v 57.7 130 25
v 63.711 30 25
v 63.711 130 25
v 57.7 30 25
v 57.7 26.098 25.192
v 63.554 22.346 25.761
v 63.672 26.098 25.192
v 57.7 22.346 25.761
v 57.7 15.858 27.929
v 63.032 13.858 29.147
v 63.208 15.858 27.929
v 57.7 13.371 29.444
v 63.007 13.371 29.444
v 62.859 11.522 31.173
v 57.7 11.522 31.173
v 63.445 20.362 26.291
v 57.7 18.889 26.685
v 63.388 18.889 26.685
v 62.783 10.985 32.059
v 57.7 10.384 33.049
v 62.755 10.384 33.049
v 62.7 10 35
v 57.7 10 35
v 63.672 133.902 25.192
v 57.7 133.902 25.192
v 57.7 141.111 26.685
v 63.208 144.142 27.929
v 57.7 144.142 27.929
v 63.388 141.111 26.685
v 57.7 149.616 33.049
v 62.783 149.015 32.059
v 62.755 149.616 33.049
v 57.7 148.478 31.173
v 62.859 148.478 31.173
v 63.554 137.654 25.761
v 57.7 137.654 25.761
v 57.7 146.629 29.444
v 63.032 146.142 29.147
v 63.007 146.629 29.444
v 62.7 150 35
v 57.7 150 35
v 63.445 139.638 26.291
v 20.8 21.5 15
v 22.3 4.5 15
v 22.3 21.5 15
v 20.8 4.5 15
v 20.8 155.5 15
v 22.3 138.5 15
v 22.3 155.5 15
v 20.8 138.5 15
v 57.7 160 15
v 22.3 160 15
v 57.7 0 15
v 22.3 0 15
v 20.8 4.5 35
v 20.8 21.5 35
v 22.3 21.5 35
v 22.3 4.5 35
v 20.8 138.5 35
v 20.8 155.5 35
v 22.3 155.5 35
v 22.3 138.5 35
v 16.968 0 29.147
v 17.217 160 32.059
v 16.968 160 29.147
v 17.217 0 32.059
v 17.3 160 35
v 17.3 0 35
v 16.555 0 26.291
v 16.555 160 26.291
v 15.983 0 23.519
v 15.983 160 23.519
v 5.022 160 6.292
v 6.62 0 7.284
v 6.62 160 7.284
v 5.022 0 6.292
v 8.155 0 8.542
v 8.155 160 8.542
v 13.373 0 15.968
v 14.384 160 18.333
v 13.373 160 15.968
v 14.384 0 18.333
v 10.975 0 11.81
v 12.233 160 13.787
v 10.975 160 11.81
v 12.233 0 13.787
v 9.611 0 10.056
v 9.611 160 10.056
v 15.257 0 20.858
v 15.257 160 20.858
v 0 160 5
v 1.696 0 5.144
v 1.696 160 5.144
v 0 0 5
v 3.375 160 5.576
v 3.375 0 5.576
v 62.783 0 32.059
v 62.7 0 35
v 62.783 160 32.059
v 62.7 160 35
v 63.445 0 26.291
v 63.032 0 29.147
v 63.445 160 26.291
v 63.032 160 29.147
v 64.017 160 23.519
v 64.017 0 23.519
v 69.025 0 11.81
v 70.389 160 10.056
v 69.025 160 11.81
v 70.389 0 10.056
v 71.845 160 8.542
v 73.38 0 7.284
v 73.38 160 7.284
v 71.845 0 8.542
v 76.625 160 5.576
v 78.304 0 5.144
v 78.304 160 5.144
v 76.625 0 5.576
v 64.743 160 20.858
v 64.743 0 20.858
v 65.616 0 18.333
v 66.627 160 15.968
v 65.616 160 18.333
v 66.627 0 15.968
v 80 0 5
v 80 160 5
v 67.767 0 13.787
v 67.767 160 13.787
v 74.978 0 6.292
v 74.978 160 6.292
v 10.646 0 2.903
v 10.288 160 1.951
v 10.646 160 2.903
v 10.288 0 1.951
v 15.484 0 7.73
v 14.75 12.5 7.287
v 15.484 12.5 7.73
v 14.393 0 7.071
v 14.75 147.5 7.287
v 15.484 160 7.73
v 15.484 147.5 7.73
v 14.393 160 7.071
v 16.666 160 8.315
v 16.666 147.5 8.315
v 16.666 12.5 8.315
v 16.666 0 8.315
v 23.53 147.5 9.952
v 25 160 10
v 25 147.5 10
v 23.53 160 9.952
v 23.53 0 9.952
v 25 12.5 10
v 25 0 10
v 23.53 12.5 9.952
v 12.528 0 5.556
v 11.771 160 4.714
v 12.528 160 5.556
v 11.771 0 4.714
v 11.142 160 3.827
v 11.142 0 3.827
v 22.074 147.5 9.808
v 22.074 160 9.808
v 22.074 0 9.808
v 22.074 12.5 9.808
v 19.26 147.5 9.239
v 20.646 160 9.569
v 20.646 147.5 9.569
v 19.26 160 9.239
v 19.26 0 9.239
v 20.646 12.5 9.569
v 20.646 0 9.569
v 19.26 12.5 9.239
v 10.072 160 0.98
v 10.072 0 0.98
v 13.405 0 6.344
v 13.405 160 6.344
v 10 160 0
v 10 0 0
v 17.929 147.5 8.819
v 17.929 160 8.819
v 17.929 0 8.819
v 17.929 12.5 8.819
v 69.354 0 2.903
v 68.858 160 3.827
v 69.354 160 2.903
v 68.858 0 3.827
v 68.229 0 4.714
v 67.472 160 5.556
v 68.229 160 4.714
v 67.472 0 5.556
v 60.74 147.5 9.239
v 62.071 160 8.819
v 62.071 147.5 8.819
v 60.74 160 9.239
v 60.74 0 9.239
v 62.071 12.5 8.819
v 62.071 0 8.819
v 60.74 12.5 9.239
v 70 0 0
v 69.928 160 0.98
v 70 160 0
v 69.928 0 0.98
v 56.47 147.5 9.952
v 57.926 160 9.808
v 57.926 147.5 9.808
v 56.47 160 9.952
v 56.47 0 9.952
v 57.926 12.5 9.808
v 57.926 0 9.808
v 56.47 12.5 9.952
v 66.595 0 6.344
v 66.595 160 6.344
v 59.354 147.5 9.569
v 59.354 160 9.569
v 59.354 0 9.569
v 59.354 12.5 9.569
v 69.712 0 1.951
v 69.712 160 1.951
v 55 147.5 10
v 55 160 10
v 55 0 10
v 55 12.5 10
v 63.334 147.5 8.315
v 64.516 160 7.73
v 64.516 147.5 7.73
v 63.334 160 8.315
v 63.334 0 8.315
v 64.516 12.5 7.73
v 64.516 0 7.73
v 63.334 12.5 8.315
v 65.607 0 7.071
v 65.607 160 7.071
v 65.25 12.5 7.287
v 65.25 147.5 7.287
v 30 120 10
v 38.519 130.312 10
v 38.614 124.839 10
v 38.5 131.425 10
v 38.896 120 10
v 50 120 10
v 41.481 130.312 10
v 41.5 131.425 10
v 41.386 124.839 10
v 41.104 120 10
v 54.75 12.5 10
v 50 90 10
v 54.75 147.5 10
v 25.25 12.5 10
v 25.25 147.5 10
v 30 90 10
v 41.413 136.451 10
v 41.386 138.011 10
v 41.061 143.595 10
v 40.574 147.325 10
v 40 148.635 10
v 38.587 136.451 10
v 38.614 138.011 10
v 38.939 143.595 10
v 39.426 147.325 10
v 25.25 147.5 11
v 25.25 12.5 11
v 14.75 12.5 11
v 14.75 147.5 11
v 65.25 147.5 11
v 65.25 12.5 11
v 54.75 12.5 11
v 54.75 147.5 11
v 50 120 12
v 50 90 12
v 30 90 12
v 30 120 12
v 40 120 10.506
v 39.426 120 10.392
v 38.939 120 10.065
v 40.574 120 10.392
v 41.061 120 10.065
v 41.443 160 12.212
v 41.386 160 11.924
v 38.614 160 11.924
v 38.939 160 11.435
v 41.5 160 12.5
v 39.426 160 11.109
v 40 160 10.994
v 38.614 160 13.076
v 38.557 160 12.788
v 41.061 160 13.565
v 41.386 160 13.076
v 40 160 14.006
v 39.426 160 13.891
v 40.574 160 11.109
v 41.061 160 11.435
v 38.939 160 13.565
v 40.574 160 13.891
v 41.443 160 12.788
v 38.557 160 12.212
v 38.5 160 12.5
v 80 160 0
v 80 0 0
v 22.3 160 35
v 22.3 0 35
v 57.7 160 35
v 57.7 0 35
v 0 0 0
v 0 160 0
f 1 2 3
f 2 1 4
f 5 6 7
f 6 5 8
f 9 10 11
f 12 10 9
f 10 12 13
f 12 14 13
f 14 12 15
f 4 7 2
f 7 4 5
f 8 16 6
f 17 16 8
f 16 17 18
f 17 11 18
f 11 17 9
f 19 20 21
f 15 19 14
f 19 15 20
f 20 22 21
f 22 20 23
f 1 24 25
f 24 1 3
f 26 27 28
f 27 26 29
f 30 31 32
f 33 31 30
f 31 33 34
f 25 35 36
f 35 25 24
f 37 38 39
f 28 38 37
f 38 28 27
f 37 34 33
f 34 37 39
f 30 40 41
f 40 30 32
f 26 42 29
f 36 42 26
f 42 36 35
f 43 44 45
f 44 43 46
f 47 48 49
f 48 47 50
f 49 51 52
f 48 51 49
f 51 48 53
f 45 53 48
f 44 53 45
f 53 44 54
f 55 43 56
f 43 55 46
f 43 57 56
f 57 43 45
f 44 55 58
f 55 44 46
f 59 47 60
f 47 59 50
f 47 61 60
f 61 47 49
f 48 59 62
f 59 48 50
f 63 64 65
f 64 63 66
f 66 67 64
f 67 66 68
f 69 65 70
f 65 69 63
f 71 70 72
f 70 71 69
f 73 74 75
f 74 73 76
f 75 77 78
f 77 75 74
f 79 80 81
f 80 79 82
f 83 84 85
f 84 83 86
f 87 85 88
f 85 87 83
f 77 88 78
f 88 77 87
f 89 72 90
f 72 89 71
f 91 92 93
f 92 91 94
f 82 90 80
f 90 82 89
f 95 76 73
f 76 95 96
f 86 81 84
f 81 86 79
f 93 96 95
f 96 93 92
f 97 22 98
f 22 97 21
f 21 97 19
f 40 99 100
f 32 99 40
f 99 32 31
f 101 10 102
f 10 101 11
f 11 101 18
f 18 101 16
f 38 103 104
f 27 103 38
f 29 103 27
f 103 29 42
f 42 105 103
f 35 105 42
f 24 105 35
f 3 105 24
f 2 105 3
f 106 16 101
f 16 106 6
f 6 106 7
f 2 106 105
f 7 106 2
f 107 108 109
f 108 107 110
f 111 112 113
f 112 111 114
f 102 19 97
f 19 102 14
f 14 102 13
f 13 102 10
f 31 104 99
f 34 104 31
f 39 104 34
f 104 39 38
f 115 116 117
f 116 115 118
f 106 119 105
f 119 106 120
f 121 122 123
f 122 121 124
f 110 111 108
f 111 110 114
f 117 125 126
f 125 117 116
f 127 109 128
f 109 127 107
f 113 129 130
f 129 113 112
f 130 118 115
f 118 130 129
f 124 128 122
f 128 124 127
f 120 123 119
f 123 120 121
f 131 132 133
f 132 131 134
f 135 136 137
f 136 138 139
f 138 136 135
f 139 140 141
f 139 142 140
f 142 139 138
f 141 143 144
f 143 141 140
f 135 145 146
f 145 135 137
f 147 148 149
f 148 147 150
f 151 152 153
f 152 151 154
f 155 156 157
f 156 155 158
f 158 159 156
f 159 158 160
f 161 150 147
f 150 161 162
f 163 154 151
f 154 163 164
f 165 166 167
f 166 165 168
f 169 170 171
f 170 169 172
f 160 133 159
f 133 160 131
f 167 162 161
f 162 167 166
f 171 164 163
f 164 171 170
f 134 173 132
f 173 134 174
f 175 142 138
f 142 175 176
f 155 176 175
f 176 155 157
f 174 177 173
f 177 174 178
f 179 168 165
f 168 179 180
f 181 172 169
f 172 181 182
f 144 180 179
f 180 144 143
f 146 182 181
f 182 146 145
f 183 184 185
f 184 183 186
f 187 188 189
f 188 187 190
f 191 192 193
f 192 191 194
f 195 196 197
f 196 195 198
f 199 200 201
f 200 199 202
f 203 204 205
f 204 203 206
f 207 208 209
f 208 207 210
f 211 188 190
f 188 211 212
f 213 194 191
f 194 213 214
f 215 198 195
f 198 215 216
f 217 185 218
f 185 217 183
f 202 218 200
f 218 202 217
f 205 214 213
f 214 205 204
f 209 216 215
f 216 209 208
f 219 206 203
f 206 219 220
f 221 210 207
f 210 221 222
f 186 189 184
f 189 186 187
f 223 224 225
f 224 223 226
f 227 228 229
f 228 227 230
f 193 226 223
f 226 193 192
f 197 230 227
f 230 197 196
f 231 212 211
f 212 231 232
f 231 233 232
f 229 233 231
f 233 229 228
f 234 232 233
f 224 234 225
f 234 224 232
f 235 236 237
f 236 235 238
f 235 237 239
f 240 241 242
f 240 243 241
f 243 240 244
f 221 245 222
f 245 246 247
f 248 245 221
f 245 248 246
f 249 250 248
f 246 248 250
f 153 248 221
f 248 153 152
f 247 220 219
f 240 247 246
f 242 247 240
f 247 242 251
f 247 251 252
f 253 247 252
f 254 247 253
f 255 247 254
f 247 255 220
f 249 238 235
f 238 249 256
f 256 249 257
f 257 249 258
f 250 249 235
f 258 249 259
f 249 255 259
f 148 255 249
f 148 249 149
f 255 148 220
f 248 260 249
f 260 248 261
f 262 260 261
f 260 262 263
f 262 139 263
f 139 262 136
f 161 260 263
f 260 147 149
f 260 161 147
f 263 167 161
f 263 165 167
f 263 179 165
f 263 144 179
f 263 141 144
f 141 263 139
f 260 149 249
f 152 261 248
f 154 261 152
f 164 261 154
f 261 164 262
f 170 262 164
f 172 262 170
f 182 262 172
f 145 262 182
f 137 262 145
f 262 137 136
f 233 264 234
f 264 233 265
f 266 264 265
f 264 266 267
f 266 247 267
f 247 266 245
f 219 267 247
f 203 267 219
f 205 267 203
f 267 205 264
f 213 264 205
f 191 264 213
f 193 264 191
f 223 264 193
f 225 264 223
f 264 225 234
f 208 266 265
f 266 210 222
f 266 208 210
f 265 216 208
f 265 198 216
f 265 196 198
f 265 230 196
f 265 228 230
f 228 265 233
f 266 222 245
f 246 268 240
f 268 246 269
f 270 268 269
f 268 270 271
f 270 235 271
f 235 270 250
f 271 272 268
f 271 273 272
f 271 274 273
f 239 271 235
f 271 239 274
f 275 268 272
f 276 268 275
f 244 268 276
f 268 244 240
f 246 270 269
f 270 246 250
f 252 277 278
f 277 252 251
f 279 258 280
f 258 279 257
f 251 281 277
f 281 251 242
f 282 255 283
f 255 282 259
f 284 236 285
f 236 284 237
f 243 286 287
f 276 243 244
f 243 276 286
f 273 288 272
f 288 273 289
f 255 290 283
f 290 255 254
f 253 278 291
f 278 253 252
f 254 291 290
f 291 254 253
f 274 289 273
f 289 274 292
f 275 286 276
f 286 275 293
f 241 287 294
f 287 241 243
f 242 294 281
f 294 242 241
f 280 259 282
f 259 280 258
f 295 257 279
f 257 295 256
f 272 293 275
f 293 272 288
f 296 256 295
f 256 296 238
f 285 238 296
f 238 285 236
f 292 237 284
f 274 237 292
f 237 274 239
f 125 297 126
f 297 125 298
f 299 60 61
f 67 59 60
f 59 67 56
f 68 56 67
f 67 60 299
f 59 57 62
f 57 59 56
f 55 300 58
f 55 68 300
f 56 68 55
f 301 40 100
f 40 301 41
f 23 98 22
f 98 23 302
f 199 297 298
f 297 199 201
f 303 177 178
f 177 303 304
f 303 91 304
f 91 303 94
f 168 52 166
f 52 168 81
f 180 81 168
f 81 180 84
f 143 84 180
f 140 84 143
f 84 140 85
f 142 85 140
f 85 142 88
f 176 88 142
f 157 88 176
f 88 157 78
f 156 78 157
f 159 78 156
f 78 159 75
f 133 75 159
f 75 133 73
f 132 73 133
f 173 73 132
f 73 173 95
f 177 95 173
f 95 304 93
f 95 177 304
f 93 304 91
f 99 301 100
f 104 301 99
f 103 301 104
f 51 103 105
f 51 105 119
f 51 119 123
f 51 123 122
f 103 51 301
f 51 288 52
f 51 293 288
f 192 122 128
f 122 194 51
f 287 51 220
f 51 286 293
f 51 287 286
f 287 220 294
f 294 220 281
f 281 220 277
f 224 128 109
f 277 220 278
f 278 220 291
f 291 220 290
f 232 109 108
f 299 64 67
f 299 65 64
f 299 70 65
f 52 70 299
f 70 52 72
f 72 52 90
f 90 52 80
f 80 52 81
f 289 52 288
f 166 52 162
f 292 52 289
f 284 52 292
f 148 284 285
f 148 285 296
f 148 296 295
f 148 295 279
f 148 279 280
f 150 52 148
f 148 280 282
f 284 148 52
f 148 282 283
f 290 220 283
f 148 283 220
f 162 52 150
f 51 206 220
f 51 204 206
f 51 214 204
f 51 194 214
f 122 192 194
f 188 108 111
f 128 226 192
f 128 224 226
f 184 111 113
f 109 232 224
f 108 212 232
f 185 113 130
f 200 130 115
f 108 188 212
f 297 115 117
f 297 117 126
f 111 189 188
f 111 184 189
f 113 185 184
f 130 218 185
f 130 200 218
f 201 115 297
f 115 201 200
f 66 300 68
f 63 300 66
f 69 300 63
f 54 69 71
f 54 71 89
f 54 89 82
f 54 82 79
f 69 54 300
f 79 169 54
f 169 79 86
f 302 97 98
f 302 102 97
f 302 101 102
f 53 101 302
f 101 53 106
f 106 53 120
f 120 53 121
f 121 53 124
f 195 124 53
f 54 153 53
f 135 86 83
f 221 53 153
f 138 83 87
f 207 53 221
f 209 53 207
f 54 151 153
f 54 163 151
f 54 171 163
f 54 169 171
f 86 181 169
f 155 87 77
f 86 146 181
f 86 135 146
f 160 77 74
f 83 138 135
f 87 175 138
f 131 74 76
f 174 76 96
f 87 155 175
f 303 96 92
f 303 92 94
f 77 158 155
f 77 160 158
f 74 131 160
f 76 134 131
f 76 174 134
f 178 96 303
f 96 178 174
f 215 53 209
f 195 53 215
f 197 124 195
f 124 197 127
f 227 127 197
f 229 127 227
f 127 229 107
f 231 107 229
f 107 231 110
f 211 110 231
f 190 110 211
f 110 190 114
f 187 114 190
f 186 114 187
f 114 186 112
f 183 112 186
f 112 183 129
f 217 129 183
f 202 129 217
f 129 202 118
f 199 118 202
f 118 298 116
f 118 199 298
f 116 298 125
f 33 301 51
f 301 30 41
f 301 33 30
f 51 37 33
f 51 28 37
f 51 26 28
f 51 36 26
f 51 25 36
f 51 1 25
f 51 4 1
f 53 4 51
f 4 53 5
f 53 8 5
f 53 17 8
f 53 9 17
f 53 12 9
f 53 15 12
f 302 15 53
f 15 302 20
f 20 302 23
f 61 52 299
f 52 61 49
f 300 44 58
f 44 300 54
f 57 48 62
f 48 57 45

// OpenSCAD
base_w = 80;
base_l = 160;
base_h = 35;

pc_w = 35.4;

difference() {
	cube([base_w,base_l,base_h]);
	pc_hole();
	pc_hole_side();
	pc_hole_foot();
	base_round();
	foot_round();
	led_ruban();
	led_controler();
}


module pc_hole() {
	translate([base_w/2-pc_w/2,-5,base_h-20])
		cube([35.4,base_l+10,25]);
}

module pc_hole_side() {
	r_y=20;
	r_z=10;
	x = base_w/2;
	
	
	translate([x,10+r_y,base_h-10])
		cube([base_w, base_l-10*2-r_y*2, 20]);
	translate([x,10+r_y,base_h])
		rotate([0,90,0])
			scale([r_z,r_y,1]) 
				cylinder(base_w, 1, 1, $fn=32);
	translate([x,base_l-10-r_y,base_h])
		rotate([0,90,0])
			scale([r_z,r_y,1]) 
				cylinder(base_w, 1, 1, $fn=32);
}

module pc_hole_foot() {
	w = 1.5;
	l=17;
	dist = 117;
	translate([base_w/2-pc_w/2-w,base_l/2-dist/2-l,base_h-20])
		cube([w+1,l,30]);
	translate([base_w/2-pc_w/2-w,base_l/2+dist/2,base_h-20])
		cube([w+1,l,30]);
}

module base_round() {
	translate([0,0,base_h])
		rotate([-90,0,0])
			translate([0,0,-5])
				scale([(base_w-pc_w)/2-5,base_h-5,1])
					cylinder(base_l+10, 1, 1, $fn=64);
	translate([base_w,0,base_h])
		rotate([-90,0,0])
			translate([0,0,-5])
				scale([(base_w-pc_w)/2-5,base_h-5,1])
					cylinder(base_l+10, 1, 1, $fn=64);
}

module foot_round() {
	x = 25;
	h = 10;
	translate([x,0,0])
		rotate([-90,0,0])
			translate([0,0,-5])
				scale([15,h,1])
					cylinder(base_l+10, 1, 1, $fn=64);
	translate([base_w-x,0,0])
		rotate([-90,0,0])
			translate([0,0,-5])
				scale([15,h,1])
					cylinder(base_l+10, 1, 1, $fn=64);
	translate([x,-5,-5])
		cube([base_w-x*2, base_l+10, h+5]);
}

module led_ruban() {
	l = 135;
	translate([20,base_l/2, 10-2])
		cube([10.5,l,6], true);
	translate([base_w-20,base_l/2, 10-2])
		cube([10.5,l,6], true);
}

module led_controler() {
	l = 30;
	translate([base_w/2,base_l-l/2-40, 10])
	cube([20,l,4], center=true);
	translate([base_w/2,base_l, 12.5])
		rotate([-85,0,0])
			cylinder(90,3/2,3/2, $fn=16, center = true);
}

color("red") {
}
